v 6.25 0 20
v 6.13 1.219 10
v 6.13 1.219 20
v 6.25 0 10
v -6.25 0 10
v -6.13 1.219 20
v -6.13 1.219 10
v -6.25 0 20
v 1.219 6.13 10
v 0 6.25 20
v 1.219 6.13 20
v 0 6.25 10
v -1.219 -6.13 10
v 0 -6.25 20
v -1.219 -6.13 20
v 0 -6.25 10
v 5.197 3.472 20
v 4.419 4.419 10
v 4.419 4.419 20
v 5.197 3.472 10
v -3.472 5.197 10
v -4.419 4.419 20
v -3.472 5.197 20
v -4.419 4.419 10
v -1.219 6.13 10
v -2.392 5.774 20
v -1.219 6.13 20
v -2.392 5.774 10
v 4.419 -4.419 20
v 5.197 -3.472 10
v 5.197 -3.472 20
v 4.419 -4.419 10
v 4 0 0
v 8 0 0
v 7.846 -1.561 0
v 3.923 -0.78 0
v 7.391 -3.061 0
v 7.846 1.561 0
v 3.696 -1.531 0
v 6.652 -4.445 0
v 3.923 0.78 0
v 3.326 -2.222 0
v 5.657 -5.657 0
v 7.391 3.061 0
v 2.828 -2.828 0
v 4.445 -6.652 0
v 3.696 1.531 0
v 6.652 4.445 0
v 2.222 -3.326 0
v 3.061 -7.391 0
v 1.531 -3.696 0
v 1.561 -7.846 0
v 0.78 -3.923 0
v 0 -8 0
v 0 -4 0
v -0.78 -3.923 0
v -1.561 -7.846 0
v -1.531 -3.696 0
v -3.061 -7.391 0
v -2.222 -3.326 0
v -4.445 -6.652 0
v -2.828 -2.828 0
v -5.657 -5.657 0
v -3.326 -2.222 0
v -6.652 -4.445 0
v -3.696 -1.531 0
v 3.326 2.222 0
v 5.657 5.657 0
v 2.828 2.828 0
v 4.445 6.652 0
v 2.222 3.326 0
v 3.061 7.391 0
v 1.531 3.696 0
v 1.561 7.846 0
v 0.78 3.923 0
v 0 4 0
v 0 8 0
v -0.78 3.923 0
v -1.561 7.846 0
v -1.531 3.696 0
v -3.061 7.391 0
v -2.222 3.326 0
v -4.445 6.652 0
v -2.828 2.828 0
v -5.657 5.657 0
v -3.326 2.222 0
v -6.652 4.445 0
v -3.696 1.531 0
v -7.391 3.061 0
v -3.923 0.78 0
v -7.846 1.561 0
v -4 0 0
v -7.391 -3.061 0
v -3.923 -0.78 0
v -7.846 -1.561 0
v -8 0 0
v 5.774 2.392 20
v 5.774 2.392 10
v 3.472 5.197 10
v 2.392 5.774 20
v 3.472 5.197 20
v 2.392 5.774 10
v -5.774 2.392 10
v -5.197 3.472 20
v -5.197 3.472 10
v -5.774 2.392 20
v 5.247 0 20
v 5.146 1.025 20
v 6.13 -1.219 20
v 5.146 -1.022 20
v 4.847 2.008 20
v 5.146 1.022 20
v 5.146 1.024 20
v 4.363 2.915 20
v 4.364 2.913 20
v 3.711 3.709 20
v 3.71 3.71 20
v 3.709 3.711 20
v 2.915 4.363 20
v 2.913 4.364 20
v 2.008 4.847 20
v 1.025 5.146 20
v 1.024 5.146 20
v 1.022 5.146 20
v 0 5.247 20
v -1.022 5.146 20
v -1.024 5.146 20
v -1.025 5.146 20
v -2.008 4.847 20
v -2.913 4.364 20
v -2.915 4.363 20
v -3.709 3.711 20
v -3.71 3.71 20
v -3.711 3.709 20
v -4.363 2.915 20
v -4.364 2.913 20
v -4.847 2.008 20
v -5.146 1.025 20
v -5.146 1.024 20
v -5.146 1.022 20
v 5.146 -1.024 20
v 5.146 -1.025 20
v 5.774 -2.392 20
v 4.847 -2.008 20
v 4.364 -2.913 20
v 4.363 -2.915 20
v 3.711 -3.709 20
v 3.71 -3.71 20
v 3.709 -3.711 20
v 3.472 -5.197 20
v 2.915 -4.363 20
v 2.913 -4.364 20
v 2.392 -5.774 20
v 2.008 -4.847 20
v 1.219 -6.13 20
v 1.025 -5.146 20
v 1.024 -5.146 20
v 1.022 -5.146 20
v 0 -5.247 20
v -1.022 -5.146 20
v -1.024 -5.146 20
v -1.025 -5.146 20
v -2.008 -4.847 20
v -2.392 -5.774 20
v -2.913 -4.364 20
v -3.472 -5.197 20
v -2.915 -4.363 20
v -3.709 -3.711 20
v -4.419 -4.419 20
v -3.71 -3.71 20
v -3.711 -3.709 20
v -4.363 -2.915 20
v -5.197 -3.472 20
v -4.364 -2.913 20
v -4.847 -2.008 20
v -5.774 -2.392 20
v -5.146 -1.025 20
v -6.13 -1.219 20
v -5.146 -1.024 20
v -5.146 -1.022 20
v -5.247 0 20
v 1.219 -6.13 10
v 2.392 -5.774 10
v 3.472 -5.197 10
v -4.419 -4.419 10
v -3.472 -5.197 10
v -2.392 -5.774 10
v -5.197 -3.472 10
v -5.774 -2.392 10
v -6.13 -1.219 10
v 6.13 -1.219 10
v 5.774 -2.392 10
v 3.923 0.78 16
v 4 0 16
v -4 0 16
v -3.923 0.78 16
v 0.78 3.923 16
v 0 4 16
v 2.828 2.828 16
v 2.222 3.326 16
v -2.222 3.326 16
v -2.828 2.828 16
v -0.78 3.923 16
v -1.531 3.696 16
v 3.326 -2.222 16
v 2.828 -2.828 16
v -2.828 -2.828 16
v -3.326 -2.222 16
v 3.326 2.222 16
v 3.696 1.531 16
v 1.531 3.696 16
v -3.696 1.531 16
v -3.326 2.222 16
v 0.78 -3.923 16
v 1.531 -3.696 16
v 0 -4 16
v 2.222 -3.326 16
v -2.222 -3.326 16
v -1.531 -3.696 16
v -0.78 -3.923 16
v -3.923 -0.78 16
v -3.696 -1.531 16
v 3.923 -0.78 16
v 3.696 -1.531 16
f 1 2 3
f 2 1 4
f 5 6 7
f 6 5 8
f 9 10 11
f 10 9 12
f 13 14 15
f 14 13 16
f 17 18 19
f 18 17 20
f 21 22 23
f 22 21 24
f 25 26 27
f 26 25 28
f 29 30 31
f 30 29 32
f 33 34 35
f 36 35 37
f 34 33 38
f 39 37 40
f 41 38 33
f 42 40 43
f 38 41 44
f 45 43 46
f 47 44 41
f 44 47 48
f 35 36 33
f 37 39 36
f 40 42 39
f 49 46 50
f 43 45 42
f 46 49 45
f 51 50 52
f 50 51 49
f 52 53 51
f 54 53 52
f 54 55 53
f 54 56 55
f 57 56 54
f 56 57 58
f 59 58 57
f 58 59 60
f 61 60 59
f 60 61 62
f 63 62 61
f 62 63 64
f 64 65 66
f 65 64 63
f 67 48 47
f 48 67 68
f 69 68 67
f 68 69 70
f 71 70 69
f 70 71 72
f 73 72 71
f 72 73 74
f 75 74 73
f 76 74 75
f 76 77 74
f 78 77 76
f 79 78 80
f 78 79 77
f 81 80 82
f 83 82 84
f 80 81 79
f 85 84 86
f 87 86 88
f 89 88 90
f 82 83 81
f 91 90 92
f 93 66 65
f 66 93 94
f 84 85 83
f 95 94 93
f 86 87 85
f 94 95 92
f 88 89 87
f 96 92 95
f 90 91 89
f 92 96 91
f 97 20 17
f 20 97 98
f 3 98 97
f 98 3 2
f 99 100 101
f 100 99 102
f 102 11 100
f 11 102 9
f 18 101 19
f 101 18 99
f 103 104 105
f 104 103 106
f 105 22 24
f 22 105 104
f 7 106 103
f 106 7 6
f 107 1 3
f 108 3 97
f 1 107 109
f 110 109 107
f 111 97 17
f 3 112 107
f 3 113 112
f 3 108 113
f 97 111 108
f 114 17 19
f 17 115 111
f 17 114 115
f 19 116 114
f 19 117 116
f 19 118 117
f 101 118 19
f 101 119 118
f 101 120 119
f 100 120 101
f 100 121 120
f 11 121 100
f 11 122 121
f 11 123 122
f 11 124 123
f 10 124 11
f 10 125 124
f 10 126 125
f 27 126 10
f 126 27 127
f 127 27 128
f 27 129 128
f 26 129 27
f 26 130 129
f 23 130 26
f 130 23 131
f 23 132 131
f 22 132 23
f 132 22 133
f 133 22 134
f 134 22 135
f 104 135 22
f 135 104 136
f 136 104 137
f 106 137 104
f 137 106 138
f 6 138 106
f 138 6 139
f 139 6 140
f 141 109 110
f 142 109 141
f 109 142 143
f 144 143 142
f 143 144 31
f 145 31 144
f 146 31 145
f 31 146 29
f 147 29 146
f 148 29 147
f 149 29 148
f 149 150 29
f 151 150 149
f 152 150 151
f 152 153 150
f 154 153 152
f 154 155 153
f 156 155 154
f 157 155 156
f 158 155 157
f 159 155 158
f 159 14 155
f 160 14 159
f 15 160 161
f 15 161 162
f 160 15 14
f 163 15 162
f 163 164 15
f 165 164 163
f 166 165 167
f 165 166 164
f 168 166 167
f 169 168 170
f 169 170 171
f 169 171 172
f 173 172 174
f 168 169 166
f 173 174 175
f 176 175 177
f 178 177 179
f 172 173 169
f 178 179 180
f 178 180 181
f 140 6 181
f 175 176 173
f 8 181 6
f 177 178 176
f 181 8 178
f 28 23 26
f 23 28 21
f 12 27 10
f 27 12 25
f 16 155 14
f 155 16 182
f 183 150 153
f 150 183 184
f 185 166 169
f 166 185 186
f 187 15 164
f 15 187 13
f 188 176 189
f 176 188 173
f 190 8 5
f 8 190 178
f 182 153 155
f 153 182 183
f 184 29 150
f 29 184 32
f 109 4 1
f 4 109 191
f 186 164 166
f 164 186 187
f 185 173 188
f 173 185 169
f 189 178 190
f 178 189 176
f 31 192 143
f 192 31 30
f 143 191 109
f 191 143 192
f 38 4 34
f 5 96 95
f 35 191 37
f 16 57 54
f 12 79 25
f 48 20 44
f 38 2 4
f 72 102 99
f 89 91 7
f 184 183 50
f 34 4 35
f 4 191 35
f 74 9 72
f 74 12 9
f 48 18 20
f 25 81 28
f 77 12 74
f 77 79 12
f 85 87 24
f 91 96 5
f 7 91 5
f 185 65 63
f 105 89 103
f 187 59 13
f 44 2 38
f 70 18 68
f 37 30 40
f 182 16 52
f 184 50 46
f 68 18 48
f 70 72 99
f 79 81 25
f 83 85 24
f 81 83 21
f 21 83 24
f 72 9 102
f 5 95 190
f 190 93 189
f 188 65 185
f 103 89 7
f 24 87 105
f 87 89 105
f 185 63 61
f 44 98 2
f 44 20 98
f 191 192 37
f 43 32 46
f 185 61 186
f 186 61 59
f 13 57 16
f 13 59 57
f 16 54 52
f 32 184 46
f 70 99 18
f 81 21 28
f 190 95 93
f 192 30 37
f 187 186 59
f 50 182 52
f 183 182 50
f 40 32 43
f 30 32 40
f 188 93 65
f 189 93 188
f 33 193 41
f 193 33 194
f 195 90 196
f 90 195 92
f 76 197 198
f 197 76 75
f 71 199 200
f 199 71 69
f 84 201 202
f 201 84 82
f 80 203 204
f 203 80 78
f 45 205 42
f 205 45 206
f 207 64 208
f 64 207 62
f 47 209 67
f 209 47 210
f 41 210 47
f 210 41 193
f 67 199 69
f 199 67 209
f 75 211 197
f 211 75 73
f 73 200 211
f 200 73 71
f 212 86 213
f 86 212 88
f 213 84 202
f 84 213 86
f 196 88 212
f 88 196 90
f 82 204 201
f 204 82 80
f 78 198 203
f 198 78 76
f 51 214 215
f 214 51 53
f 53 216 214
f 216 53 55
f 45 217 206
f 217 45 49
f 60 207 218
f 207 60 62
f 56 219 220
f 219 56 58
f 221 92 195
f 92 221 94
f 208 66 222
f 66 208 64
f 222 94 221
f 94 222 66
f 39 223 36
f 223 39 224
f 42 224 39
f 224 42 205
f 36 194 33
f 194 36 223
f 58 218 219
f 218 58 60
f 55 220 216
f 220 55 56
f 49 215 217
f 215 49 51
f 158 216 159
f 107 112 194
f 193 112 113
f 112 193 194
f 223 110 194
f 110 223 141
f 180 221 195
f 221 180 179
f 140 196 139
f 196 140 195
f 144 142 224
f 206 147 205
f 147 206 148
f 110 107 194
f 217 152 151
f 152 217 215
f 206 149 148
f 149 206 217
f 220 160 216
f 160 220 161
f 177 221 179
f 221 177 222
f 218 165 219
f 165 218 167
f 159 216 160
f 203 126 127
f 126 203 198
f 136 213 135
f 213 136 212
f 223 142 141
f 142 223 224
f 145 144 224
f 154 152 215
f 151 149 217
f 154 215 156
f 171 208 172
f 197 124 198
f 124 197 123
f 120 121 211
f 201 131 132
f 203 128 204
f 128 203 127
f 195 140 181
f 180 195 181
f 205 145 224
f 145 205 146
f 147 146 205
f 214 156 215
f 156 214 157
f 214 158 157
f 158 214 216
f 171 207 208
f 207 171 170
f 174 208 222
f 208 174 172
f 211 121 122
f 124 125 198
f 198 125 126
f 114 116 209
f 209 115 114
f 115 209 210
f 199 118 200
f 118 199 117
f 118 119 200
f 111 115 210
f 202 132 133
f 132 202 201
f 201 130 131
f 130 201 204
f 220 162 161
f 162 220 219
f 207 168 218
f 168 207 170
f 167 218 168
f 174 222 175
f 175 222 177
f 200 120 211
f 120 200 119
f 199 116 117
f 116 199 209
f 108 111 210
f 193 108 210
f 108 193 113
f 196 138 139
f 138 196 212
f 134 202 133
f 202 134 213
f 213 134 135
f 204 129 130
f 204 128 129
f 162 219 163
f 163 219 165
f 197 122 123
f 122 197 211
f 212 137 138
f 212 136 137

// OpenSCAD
// This is a trivial tool to support a 16mm lens as it is inserted
// into the holder.  Part of the OpenFlexure Microscope.

// (c) 2017 Richard Bowman, released under CERN open hardware license.

$fn=32;

h=20;

difference(){
    union(){
        cylinder(d=12.5, h=h);
        cylinder(d1=16, d2=12.5, h=10);
    }
    // hollow it out
    cylinder(d=8, h=999, center=true);
    // bevel the top
    translate([0,0,h-4]) cylinder(d1=8, d2=10.5, h=4.01);
}
